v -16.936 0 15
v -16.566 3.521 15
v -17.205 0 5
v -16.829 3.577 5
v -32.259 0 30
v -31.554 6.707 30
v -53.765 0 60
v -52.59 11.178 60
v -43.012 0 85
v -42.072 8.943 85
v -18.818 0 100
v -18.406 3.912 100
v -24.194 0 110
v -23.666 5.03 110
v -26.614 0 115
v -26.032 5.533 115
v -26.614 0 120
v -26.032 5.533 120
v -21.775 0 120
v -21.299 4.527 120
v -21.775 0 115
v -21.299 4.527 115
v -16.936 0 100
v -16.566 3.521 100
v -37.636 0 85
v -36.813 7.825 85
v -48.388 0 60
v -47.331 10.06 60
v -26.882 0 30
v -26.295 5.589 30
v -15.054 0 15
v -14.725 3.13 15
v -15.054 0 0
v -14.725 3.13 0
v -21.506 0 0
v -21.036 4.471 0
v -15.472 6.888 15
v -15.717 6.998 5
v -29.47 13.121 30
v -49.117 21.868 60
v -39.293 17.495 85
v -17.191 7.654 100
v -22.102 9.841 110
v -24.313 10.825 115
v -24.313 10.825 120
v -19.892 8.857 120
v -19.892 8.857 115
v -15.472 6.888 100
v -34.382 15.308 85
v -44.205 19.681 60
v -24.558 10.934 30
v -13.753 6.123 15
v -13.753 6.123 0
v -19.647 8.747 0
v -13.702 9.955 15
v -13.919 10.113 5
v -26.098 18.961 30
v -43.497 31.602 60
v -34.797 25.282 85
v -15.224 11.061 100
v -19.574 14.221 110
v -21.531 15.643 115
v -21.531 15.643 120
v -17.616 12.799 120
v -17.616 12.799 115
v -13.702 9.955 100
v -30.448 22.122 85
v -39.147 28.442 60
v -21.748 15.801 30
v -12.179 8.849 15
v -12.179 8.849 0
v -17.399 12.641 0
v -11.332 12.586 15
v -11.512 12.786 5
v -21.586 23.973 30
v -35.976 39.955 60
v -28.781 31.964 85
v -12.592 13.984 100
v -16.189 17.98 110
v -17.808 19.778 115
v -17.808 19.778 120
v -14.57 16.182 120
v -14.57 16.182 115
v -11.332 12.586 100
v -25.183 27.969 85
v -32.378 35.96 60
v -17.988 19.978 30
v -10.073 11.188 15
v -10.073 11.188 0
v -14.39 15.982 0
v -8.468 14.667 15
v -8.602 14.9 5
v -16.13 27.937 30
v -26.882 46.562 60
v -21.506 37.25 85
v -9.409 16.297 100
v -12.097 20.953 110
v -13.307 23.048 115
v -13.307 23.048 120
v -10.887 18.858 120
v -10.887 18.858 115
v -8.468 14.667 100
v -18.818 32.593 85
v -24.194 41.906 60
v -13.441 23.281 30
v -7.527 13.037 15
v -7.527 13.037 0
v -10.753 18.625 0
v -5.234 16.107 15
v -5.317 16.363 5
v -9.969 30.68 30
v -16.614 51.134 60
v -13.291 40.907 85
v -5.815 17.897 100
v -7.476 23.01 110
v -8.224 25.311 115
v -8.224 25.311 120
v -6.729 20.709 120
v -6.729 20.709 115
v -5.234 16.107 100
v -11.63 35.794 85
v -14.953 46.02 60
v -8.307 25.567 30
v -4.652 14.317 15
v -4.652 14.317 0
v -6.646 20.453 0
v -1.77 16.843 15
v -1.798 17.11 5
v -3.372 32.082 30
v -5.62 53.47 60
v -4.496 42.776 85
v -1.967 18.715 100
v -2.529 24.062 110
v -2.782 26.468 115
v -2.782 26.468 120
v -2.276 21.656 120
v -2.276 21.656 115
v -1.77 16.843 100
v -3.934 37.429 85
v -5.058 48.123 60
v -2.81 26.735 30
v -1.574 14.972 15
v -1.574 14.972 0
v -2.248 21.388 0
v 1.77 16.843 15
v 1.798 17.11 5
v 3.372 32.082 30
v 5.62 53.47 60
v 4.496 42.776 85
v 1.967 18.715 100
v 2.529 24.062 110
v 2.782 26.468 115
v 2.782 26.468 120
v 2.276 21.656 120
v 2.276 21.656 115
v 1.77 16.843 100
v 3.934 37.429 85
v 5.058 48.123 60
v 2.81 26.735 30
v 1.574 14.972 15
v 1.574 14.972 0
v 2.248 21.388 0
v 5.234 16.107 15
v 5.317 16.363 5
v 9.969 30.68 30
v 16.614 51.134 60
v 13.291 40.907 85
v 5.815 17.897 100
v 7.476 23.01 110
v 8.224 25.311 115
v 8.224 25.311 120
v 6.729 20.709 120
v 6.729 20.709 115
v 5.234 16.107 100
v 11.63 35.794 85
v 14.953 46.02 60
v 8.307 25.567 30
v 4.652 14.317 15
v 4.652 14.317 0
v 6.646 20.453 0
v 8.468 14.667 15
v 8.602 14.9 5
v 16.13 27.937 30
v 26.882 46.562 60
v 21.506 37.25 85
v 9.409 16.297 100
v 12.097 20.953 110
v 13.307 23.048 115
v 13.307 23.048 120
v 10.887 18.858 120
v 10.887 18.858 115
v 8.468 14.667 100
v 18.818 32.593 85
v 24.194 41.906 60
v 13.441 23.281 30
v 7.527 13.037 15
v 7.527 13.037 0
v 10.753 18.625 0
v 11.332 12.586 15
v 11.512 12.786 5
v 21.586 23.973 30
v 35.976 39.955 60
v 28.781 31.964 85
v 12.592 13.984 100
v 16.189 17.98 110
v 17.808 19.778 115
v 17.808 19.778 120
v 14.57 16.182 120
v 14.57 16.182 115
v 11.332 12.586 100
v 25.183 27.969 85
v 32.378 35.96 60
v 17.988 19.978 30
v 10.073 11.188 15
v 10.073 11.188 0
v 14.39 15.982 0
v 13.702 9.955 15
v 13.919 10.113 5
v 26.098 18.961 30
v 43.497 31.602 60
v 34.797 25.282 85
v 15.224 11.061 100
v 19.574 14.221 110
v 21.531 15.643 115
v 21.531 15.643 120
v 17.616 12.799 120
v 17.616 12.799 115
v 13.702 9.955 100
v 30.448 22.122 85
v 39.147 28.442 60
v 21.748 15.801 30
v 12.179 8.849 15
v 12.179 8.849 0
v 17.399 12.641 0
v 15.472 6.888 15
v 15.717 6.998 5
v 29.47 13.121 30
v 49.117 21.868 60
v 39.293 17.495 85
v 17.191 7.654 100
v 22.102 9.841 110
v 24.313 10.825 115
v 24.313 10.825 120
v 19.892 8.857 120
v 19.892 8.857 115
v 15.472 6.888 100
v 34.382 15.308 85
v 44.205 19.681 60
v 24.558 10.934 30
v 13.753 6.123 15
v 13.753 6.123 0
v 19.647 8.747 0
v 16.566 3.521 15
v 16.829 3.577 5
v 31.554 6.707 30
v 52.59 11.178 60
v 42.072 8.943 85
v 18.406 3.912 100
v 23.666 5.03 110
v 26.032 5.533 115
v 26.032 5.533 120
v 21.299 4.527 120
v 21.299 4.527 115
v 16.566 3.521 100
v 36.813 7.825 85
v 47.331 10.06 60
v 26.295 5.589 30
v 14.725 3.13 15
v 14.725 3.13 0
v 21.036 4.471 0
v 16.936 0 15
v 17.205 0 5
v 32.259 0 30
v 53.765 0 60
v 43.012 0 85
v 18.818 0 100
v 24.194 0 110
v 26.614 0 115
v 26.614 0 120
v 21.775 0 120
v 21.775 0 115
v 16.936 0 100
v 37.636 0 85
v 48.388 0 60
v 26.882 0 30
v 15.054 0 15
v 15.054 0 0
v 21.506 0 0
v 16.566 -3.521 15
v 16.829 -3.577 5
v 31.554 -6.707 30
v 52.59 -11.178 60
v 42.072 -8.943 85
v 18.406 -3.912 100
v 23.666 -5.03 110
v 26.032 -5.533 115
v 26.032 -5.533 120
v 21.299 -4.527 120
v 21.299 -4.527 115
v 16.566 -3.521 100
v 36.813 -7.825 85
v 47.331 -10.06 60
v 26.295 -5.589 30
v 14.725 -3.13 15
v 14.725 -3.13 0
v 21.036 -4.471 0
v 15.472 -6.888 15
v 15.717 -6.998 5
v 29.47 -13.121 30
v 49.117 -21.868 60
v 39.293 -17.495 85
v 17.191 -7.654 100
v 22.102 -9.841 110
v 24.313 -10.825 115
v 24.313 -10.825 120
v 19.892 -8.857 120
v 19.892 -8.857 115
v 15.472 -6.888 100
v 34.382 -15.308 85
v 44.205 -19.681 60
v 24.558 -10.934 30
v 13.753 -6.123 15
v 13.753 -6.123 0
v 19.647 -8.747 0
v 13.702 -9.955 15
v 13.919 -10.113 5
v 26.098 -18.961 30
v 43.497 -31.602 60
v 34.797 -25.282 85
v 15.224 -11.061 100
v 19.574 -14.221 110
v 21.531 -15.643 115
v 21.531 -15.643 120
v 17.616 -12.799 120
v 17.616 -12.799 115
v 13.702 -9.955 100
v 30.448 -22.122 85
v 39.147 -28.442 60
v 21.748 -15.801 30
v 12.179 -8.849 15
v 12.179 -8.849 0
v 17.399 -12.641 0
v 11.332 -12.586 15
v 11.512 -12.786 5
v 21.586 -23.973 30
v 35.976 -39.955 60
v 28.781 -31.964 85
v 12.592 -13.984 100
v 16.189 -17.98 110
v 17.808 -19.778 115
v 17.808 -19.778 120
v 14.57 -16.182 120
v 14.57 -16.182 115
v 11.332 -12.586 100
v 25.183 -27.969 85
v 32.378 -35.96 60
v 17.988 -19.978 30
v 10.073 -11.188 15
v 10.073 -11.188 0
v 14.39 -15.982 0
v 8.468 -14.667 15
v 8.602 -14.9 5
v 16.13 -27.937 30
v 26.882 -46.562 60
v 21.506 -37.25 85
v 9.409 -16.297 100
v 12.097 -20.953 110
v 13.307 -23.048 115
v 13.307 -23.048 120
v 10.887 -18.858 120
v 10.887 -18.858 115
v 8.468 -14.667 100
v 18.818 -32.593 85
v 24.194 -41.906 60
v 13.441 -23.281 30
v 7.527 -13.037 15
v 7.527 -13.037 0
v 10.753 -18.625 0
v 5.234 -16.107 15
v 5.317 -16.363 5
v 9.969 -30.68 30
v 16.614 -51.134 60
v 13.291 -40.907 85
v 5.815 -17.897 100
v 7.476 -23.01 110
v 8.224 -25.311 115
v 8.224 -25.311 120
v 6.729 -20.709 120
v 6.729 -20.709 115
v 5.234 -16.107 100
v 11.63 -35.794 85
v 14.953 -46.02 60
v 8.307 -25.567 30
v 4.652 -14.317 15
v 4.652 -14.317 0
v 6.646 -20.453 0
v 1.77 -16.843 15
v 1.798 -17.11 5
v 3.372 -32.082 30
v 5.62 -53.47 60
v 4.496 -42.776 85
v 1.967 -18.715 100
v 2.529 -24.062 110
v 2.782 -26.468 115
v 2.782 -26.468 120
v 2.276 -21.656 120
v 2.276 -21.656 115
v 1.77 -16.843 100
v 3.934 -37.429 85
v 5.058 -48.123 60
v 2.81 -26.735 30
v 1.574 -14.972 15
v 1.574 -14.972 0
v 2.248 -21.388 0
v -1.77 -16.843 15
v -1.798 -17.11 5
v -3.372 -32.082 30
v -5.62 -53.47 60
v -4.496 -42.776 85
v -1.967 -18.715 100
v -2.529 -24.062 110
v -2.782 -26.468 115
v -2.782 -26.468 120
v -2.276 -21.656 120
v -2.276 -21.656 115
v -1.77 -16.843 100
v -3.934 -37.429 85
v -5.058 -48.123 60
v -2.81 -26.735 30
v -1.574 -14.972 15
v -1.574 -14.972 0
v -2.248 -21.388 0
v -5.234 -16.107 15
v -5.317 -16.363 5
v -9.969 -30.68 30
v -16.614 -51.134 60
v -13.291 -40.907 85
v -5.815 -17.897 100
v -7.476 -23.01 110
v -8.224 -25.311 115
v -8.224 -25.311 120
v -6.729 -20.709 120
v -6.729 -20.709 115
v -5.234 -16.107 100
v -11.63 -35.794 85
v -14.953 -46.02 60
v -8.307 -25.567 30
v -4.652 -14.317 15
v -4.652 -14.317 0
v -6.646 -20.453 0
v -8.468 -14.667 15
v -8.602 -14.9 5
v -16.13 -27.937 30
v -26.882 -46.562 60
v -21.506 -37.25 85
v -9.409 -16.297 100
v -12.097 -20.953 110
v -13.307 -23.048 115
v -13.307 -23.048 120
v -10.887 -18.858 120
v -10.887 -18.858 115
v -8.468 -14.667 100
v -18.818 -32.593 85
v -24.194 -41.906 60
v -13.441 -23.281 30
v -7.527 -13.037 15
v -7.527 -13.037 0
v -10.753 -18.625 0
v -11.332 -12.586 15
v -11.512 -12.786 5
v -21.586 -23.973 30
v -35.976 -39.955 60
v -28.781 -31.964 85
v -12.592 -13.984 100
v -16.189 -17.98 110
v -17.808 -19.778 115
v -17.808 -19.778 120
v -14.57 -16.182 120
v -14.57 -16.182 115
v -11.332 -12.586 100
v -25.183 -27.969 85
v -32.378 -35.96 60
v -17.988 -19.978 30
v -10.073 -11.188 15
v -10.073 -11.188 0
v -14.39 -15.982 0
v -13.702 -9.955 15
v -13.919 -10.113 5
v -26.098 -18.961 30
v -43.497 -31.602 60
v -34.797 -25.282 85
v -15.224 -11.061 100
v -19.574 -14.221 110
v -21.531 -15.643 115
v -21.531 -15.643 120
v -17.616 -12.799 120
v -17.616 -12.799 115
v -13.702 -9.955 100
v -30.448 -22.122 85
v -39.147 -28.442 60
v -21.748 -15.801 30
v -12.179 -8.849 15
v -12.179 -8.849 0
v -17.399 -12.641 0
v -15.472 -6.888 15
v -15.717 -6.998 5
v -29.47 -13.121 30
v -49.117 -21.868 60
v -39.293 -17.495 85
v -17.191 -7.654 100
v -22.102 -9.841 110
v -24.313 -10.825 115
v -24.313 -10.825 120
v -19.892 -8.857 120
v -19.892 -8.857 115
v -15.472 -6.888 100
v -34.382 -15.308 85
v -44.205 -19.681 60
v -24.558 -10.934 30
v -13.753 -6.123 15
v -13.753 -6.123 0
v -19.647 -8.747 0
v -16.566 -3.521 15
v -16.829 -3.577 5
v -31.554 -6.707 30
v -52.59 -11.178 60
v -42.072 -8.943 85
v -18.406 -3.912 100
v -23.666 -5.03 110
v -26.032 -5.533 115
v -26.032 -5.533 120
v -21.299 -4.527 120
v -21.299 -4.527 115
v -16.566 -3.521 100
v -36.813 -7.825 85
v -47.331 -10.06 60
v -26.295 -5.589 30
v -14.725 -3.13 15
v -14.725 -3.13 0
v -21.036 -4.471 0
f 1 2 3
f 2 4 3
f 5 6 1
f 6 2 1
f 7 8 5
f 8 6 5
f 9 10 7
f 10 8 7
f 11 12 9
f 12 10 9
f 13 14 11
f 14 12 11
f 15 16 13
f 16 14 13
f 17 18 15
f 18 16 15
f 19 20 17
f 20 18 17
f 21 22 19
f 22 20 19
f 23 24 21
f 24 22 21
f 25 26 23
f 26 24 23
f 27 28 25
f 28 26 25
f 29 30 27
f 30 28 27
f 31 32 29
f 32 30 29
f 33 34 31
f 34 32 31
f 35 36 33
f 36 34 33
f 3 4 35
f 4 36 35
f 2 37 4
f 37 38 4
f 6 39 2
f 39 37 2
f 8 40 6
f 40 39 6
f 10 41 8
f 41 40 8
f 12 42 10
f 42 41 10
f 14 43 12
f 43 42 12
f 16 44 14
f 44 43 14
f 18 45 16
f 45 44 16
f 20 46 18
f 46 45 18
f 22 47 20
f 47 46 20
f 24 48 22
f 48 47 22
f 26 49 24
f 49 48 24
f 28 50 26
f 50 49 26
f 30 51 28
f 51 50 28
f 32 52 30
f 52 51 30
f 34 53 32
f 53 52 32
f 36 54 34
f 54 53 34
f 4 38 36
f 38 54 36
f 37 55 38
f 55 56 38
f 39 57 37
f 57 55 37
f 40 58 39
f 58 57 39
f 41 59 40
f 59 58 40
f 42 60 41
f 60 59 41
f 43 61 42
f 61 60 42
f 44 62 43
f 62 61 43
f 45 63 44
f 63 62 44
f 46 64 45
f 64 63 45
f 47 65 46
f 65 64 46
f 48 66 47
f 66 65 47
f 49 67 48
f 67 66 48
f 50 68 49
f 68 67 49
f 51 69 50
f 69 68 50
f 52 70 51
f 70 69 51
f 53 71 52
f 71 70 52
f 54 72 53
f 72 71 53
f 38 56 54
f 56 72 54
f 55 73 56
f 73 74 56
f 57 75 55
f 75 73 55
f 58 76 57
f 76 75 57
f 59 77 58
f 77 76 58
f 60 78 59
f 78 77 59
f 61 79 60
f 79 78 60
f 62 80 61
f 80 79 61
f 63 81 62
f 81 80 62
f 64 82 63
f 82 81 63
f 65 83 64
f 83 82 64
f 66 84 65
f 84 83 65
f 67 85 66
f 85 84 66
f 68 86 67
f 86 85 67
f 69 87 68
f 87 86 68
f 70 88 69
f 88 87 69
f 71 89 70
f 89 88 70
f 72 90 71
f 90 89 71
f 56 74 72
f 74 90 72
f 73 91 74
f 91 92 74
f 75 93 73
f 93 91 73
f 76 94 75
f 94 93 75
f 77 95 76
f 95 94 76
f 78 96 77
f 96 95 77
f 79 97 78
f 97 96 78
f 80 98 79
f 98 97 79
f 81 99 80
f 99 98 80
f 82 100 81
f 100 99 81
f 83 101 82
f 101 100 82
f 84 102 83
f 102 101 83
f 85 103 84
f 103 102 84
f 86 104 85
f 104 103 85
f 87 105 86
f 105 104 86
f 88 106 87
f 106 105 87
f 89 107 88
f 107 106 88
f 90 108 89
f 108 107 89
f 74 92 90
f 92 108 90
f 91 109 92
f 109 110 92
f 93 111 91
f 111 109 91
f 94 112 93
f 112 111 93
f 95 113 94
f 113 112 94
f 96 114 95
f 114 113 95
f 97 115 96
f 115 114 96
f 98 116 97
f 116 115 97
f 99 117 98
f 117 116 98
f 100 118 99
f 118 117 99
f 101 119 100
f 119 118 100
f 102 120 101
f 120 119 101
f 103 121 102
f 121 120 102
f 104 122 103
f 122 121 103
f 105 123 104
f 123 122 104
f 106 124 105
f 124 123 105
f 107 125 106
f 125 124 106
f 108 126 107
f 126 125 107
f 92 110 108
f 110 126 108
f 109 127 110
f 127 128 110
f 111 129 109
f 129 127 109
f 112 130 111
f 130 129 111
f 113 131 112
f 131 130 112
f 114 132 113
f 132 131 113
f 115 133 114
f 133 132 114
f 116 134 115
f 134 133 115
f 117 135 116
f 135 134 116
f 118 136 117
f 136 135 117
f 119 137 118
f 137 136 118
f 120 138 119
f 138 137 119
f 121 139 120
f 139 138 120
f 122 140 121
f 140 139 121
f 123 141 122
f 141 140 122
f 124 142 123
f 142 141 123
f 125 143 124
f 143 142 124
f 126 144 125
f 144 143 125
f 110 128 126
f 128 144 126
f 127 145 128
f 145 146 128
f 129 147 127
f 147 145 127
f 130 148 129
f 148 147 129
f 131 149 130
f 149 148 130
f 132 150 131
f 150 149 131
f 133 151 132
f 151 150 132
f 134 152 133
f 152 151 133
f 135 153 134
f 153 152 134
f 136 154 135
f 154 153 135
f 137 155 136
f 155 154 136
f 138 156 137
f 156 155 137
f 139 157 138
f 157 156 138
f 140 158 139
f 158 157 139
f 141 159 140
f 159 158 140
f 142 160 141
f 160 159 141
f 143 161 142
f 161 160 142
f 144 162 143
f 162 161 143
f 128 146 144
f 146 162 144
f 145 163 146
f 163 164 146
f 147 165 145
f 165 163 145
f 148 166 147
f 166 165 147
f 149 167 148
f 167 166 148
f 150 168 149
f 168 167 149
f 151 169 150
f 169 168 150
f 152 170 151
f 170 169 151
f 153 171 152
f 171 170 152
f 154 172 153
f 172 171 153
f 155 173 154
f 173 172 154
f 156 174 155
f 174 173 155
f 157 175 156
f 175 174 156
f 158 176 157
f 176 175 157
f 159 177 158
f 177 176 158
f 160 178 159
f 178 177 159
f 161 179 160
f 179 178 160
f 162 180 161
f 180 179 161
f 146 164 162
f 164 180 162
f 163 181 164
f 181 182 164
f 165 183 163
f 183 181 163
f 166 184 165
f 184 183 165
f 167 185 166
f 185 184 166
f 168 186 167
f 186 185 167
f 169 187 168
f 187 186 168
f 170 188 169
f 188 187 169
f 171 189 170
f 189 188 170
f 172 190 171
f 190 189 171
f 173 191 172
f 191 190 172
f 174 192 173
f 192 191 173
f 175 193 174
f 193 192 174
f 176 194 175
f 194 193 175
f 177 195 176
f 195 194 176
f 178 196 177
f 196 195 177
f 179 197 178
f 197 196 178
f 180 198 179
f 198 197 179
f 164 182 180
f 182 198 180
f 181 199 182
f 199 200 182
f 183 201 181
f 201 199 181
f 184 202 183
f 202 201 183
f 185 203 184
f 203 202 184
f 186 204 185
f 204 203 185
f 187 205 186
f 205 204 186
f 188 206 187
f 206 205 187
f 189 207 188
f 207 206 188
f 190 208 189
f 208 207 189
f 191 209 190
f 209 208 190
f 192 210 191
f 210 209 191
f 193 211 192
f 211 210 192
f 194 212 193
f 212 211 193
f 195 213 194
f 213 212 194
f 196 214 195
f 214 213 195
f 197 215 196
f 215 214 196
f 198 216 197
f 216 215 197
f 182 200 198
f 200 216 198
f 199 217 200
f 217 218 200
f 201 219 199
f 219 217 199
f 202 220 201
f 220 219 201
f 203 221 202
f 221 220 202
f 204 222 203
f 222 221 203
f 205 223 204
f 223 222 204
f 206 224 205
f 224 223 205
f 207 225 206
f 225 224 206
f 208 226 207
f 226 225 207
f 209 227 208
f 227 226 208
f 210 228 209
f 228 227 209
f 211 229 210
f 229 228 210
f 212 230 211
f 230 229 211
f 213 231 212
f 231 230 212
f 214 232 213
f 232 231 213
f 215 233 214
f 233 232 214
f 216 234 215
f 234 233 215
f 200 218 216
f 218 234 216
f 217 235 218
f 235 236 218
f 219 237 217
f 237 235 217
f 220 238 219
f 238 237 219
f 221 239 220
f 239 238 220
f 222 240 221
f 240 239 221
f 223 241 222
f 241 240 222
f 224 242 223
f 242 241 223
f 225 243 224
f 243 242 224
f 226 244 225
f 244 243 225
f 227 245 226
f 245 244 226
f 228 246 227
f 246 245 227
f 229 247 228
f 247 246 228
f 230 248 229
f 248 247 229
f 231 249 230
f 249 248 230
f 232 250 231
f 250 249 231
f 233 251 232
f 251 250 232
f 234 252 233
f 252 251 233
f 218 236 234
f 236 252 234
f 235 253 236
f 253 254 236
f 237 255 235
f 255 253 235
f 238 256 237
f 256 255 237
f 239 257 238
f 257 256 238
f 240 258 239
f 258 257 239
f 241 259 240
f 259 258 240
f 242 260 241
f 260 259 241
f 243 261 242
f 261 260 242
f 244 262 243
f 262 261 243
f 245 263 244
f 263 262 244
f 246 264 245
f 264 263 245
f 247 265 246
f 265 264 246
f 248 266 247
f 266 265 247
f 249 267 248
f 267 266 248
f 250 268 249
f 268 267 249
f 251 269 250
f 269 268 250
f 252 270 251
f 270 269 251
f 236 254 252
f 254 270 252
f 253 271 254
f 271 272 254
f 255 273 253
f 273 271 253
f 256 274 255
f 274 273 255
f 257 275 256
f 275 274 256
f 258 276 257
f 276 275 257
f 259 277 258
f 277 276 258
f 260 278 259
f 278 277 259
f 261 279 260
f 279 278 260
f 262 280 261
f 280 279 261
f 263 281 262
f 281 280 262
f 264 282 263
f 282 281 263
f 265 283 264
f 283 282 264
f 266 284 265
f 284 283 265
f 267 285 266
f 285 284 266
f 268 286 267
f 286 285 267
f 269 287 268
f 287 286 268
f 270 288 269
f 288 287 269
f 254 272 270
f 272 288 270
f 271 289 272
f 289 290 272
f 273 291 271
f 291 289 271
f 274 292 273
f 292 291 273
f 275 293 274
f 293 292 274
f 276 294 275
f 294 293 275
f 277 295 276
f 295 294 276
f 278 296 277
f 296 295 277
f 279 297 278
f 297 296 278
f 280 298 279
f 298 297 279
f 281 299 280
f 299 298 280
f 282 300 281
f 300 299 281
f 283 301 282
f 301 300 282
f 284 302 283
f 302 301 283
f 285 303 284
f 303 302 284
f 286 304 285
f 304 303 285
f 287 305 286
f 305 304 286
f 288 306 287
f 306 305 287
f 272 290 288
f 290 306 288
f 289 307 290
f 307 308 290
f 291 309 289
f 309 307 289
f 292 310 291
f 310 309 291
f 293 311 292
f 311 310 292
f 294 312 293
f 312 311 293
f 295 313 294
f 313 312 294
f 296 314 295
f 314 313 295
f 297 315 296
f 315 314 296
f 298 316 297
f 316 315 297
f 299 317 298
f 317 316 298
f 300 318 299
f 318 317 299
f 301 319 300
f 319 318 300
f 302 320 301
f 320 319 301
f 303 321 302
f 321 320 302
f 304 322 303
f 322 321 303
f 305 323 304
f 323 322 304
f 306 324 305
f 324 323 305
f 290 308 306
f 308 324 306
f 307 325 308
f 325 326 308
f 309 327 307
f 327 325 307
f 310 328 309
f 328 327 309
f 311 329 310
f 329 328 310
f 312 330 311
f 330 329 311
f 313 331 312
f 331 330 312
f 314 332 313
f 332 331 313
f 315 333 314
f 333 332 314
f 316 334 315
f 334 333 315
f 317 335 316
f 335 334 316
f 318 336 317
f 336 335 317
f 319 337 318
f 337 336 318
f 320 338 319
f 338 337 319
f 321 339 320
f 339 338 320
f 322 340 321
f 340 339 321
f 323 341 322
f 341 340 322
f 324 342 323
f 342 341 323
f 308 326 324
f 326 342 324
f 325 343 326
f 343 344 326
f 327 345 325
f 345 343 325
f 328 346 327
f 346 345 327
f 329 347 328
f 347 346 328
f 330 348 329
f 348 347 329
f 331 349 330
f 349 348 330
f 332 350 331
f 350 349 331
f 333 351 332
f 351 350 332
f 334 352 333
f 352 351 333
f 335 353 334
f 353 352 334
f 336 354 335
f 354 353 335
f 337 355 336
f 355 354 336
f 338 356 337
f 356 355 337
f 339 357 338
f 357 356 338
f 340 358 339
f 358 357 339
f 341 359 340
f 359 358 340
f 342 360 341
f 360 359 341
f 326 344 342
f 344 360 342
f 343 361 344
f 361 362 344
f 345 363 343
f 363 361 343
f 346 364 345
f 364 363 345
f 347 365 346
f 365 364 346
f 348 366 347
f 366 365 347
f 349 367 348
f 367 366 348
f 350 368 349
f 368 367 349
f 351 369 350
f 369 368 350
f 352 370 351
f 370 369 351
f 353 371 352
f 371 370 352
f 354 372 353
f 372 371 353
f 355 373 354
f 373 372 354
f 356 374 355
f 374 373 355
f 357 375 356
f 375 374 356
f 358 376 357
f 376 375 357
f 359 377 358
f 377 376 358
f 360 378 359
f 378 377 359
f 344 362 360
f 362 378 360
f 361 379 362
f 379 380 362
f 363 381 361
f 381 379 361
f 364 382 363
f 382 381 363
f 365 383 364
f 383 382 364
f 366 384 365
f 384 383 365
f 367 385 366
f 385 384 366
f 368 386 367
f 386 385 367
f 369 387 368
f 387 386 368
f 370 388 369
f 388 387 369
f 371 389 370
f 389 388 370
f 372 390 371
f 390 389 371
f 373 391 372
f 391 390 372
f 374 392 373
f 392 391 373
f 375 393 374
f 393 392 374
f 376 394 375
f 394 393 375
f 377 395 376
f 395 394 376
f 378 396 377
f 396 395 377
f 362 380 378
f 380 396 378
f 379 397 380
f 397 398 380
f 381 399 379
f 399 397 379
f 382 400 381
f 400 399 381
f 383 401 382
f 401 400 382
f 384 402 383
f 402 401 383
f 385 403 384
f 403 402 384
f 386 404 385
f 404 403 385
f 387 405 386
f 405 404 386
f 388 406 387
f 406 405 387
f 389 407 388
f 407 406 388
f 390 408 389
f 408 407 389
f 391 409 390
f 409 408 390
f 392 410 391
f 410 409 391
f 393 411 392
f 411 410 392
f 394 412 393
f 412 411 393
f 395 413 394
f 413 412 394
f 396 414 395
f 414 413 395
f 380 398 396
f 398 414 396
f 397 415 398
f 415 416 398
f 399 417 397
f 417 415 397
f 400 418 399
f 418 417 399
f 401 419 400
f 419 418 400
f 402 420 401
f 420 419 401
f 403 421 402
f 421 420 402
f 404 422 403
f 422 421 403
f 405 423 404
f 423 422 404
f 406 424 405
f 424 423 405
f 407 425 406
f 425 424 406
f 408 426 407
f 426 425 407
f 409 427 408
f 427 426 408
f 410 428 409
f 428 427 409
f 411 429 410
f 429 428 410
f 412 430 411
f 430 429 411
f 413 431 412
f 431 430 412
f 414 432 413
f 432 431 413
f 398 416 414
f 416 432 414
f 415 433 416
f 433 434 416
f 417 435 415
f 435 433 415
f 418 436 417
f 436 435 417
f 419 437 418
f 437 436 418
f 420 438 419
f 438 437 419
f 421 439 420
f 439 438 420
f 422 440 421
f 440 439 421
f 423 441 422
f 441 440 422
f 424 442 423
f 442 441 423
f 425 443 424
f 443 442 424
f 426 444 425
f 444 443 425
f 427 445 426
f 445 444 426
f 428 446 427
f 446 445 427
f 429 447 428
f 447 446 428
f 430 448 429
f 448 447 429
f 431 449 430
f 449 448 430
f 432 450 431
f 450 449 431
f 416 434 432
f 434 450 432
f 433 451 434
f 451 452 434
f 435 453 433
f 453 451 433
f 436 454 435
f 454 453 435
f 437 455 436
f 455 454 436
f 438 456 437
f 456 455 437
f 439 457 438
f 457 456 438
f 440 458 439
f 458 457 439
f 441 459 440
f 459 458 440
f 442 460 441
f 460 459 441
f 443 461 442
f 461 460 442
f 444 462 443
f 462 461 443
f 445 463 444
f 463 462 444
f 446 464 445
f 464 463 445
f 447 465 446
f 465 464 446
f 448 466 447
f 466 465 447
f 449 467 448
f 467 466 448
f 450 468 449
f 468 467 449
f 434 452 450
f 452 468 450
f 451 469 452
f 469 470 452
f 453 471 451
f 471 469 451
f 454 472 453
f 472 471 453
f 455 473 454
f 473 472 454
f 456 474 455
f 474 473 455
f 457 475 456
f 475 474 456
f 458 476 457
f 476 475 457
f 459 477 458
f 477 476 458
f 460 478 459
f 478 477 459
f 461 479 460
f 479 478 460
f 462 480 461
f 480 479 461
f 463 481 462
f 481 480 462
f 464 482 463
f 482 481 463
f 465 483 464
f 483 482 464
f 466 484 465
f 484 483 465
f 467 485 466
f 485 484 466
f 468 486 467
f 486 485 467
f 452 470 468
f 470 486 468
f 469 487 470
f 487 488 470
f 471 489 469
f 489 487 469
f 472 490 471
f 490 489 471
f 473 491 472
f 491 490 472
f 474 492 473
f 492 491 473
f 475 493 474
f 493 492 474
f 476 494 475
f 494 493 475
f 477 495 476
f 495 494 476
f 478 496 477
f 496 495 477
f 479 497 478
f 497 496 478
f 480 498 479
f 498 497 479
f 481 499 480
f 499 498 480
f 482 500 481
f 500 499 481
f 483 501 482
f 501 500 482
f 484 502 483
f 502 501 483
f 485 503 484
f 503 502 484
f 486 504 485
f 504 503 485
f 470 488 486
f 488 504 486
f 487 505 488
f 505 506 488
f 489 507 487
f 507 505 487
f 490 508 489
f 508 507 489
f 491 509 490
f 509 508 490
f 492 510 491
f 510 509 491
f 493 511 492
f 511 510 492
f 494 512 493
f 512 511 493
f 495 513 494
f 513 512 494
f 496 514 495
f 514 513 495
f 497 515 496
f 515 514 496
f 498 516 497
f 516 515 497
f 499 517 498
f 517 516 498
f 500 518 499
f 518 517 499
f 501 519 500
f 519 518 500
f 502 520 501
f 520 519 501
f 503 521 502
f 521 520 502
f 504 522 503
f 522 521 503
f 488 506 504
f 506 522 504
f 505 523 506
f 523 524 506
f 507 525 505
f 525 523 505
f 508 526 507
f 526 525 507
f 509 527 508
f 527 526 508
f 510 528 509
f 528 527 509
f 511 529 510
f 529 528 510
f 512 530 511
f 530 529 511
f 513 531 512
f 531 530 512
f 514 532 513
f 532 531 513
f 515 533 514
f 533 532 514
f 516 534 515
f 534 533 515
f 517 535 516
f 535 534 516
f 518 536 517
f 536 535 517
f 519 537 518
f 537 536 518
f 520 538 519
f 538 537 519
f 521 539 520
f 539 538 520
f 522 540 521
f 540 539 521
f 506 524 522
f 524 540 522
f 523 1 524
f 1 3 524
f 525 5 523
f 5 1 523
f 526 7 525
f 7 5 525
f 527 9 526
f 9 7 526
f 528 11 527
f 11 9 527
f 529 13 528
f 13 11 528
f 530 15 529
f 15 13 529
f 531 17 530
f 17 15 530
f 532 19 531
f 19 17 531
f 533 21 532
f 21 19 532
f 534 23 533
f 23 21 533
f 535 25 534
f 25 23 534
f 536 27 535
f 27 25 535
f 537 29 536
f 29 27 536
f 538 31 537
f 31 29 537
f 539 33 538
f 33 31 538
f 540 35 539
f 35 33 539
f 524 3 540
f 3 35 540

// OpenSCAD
/* doodle-meta {"version":1,"parameters":{"height":{"label":"Overall height","description":"Total height of the vase from base to rim","unit":"mm","feature":"overall_height"},"max_width":{"label":"Max width","description":"Maximum diameter of the vase body","unit":"mm","feature":"body_width"}},"features":{"overall_height":{"kind":"dimension","axis":"z","label":"Overall height"},"body_width":{"kind":"dimension","axis":"x","label":"Max width"}}} */

// Parameters
height = 120.0;
max_width = 107.53;

// Derived parameters
radius_max = max_width / 2.0;
radius_rim = radius_max * 0.45; // Rim is narrower than max width
radius_neck = radius_max * 0.35;
radius_base = radius_max * 0.40;

// Profile points for the vase silhouette (right half, from bottom to top)
// Coordinates are [radius, z]
// Based on the measured polygon and typical Greek vase proportions
profile_points = [
    [radius_base, 0],           // Base outer edge
    [radius_base * 0.8, 5],     // Base inner curve start
    [radius_neck * 0.9, 15],    // Lower body/foot transition
    [radius_max * 0.6, 30],     // Lower body
    [radius_max, 60],           // Max width (shoulder/belly)
    [radius_max * 0.8, 85],     // Upper body
    [radius_neck, 100],         // Neck
    [radius_rim, 110],          // Neck to rim transition
    [radius_rim * 1.1, 115],    // Rim flare
    [radius_rim * 1.1, height], // Rim top outer
    [radius_rim * 0.9, height], // Rim top inner
    [radius_rim * 0.9, 115],    // Rim inner flare
    [radius_neck * 0.9, 100],   // Neck inner
    [radius_max * 0.7, 85],     // Upper body inner
    [radius_max * 0.9, 60],     // Max width inner
    [radius_max * 0.5, 30],     // Lower body inner
    [radius_neck * 0.8, 15],    // Lower body inner
    [radius_base * 0.7, 5],     // Base inner curve end
    [radius_base * 0.7, 0]      // Base inner edge
];

module vase_profile() {
    polygon(points=profile_points);
}

module vase_body() {
    rotate_extrude(angle=360) {
        vase_profile();
    }
}

// Main design
vase_body();
